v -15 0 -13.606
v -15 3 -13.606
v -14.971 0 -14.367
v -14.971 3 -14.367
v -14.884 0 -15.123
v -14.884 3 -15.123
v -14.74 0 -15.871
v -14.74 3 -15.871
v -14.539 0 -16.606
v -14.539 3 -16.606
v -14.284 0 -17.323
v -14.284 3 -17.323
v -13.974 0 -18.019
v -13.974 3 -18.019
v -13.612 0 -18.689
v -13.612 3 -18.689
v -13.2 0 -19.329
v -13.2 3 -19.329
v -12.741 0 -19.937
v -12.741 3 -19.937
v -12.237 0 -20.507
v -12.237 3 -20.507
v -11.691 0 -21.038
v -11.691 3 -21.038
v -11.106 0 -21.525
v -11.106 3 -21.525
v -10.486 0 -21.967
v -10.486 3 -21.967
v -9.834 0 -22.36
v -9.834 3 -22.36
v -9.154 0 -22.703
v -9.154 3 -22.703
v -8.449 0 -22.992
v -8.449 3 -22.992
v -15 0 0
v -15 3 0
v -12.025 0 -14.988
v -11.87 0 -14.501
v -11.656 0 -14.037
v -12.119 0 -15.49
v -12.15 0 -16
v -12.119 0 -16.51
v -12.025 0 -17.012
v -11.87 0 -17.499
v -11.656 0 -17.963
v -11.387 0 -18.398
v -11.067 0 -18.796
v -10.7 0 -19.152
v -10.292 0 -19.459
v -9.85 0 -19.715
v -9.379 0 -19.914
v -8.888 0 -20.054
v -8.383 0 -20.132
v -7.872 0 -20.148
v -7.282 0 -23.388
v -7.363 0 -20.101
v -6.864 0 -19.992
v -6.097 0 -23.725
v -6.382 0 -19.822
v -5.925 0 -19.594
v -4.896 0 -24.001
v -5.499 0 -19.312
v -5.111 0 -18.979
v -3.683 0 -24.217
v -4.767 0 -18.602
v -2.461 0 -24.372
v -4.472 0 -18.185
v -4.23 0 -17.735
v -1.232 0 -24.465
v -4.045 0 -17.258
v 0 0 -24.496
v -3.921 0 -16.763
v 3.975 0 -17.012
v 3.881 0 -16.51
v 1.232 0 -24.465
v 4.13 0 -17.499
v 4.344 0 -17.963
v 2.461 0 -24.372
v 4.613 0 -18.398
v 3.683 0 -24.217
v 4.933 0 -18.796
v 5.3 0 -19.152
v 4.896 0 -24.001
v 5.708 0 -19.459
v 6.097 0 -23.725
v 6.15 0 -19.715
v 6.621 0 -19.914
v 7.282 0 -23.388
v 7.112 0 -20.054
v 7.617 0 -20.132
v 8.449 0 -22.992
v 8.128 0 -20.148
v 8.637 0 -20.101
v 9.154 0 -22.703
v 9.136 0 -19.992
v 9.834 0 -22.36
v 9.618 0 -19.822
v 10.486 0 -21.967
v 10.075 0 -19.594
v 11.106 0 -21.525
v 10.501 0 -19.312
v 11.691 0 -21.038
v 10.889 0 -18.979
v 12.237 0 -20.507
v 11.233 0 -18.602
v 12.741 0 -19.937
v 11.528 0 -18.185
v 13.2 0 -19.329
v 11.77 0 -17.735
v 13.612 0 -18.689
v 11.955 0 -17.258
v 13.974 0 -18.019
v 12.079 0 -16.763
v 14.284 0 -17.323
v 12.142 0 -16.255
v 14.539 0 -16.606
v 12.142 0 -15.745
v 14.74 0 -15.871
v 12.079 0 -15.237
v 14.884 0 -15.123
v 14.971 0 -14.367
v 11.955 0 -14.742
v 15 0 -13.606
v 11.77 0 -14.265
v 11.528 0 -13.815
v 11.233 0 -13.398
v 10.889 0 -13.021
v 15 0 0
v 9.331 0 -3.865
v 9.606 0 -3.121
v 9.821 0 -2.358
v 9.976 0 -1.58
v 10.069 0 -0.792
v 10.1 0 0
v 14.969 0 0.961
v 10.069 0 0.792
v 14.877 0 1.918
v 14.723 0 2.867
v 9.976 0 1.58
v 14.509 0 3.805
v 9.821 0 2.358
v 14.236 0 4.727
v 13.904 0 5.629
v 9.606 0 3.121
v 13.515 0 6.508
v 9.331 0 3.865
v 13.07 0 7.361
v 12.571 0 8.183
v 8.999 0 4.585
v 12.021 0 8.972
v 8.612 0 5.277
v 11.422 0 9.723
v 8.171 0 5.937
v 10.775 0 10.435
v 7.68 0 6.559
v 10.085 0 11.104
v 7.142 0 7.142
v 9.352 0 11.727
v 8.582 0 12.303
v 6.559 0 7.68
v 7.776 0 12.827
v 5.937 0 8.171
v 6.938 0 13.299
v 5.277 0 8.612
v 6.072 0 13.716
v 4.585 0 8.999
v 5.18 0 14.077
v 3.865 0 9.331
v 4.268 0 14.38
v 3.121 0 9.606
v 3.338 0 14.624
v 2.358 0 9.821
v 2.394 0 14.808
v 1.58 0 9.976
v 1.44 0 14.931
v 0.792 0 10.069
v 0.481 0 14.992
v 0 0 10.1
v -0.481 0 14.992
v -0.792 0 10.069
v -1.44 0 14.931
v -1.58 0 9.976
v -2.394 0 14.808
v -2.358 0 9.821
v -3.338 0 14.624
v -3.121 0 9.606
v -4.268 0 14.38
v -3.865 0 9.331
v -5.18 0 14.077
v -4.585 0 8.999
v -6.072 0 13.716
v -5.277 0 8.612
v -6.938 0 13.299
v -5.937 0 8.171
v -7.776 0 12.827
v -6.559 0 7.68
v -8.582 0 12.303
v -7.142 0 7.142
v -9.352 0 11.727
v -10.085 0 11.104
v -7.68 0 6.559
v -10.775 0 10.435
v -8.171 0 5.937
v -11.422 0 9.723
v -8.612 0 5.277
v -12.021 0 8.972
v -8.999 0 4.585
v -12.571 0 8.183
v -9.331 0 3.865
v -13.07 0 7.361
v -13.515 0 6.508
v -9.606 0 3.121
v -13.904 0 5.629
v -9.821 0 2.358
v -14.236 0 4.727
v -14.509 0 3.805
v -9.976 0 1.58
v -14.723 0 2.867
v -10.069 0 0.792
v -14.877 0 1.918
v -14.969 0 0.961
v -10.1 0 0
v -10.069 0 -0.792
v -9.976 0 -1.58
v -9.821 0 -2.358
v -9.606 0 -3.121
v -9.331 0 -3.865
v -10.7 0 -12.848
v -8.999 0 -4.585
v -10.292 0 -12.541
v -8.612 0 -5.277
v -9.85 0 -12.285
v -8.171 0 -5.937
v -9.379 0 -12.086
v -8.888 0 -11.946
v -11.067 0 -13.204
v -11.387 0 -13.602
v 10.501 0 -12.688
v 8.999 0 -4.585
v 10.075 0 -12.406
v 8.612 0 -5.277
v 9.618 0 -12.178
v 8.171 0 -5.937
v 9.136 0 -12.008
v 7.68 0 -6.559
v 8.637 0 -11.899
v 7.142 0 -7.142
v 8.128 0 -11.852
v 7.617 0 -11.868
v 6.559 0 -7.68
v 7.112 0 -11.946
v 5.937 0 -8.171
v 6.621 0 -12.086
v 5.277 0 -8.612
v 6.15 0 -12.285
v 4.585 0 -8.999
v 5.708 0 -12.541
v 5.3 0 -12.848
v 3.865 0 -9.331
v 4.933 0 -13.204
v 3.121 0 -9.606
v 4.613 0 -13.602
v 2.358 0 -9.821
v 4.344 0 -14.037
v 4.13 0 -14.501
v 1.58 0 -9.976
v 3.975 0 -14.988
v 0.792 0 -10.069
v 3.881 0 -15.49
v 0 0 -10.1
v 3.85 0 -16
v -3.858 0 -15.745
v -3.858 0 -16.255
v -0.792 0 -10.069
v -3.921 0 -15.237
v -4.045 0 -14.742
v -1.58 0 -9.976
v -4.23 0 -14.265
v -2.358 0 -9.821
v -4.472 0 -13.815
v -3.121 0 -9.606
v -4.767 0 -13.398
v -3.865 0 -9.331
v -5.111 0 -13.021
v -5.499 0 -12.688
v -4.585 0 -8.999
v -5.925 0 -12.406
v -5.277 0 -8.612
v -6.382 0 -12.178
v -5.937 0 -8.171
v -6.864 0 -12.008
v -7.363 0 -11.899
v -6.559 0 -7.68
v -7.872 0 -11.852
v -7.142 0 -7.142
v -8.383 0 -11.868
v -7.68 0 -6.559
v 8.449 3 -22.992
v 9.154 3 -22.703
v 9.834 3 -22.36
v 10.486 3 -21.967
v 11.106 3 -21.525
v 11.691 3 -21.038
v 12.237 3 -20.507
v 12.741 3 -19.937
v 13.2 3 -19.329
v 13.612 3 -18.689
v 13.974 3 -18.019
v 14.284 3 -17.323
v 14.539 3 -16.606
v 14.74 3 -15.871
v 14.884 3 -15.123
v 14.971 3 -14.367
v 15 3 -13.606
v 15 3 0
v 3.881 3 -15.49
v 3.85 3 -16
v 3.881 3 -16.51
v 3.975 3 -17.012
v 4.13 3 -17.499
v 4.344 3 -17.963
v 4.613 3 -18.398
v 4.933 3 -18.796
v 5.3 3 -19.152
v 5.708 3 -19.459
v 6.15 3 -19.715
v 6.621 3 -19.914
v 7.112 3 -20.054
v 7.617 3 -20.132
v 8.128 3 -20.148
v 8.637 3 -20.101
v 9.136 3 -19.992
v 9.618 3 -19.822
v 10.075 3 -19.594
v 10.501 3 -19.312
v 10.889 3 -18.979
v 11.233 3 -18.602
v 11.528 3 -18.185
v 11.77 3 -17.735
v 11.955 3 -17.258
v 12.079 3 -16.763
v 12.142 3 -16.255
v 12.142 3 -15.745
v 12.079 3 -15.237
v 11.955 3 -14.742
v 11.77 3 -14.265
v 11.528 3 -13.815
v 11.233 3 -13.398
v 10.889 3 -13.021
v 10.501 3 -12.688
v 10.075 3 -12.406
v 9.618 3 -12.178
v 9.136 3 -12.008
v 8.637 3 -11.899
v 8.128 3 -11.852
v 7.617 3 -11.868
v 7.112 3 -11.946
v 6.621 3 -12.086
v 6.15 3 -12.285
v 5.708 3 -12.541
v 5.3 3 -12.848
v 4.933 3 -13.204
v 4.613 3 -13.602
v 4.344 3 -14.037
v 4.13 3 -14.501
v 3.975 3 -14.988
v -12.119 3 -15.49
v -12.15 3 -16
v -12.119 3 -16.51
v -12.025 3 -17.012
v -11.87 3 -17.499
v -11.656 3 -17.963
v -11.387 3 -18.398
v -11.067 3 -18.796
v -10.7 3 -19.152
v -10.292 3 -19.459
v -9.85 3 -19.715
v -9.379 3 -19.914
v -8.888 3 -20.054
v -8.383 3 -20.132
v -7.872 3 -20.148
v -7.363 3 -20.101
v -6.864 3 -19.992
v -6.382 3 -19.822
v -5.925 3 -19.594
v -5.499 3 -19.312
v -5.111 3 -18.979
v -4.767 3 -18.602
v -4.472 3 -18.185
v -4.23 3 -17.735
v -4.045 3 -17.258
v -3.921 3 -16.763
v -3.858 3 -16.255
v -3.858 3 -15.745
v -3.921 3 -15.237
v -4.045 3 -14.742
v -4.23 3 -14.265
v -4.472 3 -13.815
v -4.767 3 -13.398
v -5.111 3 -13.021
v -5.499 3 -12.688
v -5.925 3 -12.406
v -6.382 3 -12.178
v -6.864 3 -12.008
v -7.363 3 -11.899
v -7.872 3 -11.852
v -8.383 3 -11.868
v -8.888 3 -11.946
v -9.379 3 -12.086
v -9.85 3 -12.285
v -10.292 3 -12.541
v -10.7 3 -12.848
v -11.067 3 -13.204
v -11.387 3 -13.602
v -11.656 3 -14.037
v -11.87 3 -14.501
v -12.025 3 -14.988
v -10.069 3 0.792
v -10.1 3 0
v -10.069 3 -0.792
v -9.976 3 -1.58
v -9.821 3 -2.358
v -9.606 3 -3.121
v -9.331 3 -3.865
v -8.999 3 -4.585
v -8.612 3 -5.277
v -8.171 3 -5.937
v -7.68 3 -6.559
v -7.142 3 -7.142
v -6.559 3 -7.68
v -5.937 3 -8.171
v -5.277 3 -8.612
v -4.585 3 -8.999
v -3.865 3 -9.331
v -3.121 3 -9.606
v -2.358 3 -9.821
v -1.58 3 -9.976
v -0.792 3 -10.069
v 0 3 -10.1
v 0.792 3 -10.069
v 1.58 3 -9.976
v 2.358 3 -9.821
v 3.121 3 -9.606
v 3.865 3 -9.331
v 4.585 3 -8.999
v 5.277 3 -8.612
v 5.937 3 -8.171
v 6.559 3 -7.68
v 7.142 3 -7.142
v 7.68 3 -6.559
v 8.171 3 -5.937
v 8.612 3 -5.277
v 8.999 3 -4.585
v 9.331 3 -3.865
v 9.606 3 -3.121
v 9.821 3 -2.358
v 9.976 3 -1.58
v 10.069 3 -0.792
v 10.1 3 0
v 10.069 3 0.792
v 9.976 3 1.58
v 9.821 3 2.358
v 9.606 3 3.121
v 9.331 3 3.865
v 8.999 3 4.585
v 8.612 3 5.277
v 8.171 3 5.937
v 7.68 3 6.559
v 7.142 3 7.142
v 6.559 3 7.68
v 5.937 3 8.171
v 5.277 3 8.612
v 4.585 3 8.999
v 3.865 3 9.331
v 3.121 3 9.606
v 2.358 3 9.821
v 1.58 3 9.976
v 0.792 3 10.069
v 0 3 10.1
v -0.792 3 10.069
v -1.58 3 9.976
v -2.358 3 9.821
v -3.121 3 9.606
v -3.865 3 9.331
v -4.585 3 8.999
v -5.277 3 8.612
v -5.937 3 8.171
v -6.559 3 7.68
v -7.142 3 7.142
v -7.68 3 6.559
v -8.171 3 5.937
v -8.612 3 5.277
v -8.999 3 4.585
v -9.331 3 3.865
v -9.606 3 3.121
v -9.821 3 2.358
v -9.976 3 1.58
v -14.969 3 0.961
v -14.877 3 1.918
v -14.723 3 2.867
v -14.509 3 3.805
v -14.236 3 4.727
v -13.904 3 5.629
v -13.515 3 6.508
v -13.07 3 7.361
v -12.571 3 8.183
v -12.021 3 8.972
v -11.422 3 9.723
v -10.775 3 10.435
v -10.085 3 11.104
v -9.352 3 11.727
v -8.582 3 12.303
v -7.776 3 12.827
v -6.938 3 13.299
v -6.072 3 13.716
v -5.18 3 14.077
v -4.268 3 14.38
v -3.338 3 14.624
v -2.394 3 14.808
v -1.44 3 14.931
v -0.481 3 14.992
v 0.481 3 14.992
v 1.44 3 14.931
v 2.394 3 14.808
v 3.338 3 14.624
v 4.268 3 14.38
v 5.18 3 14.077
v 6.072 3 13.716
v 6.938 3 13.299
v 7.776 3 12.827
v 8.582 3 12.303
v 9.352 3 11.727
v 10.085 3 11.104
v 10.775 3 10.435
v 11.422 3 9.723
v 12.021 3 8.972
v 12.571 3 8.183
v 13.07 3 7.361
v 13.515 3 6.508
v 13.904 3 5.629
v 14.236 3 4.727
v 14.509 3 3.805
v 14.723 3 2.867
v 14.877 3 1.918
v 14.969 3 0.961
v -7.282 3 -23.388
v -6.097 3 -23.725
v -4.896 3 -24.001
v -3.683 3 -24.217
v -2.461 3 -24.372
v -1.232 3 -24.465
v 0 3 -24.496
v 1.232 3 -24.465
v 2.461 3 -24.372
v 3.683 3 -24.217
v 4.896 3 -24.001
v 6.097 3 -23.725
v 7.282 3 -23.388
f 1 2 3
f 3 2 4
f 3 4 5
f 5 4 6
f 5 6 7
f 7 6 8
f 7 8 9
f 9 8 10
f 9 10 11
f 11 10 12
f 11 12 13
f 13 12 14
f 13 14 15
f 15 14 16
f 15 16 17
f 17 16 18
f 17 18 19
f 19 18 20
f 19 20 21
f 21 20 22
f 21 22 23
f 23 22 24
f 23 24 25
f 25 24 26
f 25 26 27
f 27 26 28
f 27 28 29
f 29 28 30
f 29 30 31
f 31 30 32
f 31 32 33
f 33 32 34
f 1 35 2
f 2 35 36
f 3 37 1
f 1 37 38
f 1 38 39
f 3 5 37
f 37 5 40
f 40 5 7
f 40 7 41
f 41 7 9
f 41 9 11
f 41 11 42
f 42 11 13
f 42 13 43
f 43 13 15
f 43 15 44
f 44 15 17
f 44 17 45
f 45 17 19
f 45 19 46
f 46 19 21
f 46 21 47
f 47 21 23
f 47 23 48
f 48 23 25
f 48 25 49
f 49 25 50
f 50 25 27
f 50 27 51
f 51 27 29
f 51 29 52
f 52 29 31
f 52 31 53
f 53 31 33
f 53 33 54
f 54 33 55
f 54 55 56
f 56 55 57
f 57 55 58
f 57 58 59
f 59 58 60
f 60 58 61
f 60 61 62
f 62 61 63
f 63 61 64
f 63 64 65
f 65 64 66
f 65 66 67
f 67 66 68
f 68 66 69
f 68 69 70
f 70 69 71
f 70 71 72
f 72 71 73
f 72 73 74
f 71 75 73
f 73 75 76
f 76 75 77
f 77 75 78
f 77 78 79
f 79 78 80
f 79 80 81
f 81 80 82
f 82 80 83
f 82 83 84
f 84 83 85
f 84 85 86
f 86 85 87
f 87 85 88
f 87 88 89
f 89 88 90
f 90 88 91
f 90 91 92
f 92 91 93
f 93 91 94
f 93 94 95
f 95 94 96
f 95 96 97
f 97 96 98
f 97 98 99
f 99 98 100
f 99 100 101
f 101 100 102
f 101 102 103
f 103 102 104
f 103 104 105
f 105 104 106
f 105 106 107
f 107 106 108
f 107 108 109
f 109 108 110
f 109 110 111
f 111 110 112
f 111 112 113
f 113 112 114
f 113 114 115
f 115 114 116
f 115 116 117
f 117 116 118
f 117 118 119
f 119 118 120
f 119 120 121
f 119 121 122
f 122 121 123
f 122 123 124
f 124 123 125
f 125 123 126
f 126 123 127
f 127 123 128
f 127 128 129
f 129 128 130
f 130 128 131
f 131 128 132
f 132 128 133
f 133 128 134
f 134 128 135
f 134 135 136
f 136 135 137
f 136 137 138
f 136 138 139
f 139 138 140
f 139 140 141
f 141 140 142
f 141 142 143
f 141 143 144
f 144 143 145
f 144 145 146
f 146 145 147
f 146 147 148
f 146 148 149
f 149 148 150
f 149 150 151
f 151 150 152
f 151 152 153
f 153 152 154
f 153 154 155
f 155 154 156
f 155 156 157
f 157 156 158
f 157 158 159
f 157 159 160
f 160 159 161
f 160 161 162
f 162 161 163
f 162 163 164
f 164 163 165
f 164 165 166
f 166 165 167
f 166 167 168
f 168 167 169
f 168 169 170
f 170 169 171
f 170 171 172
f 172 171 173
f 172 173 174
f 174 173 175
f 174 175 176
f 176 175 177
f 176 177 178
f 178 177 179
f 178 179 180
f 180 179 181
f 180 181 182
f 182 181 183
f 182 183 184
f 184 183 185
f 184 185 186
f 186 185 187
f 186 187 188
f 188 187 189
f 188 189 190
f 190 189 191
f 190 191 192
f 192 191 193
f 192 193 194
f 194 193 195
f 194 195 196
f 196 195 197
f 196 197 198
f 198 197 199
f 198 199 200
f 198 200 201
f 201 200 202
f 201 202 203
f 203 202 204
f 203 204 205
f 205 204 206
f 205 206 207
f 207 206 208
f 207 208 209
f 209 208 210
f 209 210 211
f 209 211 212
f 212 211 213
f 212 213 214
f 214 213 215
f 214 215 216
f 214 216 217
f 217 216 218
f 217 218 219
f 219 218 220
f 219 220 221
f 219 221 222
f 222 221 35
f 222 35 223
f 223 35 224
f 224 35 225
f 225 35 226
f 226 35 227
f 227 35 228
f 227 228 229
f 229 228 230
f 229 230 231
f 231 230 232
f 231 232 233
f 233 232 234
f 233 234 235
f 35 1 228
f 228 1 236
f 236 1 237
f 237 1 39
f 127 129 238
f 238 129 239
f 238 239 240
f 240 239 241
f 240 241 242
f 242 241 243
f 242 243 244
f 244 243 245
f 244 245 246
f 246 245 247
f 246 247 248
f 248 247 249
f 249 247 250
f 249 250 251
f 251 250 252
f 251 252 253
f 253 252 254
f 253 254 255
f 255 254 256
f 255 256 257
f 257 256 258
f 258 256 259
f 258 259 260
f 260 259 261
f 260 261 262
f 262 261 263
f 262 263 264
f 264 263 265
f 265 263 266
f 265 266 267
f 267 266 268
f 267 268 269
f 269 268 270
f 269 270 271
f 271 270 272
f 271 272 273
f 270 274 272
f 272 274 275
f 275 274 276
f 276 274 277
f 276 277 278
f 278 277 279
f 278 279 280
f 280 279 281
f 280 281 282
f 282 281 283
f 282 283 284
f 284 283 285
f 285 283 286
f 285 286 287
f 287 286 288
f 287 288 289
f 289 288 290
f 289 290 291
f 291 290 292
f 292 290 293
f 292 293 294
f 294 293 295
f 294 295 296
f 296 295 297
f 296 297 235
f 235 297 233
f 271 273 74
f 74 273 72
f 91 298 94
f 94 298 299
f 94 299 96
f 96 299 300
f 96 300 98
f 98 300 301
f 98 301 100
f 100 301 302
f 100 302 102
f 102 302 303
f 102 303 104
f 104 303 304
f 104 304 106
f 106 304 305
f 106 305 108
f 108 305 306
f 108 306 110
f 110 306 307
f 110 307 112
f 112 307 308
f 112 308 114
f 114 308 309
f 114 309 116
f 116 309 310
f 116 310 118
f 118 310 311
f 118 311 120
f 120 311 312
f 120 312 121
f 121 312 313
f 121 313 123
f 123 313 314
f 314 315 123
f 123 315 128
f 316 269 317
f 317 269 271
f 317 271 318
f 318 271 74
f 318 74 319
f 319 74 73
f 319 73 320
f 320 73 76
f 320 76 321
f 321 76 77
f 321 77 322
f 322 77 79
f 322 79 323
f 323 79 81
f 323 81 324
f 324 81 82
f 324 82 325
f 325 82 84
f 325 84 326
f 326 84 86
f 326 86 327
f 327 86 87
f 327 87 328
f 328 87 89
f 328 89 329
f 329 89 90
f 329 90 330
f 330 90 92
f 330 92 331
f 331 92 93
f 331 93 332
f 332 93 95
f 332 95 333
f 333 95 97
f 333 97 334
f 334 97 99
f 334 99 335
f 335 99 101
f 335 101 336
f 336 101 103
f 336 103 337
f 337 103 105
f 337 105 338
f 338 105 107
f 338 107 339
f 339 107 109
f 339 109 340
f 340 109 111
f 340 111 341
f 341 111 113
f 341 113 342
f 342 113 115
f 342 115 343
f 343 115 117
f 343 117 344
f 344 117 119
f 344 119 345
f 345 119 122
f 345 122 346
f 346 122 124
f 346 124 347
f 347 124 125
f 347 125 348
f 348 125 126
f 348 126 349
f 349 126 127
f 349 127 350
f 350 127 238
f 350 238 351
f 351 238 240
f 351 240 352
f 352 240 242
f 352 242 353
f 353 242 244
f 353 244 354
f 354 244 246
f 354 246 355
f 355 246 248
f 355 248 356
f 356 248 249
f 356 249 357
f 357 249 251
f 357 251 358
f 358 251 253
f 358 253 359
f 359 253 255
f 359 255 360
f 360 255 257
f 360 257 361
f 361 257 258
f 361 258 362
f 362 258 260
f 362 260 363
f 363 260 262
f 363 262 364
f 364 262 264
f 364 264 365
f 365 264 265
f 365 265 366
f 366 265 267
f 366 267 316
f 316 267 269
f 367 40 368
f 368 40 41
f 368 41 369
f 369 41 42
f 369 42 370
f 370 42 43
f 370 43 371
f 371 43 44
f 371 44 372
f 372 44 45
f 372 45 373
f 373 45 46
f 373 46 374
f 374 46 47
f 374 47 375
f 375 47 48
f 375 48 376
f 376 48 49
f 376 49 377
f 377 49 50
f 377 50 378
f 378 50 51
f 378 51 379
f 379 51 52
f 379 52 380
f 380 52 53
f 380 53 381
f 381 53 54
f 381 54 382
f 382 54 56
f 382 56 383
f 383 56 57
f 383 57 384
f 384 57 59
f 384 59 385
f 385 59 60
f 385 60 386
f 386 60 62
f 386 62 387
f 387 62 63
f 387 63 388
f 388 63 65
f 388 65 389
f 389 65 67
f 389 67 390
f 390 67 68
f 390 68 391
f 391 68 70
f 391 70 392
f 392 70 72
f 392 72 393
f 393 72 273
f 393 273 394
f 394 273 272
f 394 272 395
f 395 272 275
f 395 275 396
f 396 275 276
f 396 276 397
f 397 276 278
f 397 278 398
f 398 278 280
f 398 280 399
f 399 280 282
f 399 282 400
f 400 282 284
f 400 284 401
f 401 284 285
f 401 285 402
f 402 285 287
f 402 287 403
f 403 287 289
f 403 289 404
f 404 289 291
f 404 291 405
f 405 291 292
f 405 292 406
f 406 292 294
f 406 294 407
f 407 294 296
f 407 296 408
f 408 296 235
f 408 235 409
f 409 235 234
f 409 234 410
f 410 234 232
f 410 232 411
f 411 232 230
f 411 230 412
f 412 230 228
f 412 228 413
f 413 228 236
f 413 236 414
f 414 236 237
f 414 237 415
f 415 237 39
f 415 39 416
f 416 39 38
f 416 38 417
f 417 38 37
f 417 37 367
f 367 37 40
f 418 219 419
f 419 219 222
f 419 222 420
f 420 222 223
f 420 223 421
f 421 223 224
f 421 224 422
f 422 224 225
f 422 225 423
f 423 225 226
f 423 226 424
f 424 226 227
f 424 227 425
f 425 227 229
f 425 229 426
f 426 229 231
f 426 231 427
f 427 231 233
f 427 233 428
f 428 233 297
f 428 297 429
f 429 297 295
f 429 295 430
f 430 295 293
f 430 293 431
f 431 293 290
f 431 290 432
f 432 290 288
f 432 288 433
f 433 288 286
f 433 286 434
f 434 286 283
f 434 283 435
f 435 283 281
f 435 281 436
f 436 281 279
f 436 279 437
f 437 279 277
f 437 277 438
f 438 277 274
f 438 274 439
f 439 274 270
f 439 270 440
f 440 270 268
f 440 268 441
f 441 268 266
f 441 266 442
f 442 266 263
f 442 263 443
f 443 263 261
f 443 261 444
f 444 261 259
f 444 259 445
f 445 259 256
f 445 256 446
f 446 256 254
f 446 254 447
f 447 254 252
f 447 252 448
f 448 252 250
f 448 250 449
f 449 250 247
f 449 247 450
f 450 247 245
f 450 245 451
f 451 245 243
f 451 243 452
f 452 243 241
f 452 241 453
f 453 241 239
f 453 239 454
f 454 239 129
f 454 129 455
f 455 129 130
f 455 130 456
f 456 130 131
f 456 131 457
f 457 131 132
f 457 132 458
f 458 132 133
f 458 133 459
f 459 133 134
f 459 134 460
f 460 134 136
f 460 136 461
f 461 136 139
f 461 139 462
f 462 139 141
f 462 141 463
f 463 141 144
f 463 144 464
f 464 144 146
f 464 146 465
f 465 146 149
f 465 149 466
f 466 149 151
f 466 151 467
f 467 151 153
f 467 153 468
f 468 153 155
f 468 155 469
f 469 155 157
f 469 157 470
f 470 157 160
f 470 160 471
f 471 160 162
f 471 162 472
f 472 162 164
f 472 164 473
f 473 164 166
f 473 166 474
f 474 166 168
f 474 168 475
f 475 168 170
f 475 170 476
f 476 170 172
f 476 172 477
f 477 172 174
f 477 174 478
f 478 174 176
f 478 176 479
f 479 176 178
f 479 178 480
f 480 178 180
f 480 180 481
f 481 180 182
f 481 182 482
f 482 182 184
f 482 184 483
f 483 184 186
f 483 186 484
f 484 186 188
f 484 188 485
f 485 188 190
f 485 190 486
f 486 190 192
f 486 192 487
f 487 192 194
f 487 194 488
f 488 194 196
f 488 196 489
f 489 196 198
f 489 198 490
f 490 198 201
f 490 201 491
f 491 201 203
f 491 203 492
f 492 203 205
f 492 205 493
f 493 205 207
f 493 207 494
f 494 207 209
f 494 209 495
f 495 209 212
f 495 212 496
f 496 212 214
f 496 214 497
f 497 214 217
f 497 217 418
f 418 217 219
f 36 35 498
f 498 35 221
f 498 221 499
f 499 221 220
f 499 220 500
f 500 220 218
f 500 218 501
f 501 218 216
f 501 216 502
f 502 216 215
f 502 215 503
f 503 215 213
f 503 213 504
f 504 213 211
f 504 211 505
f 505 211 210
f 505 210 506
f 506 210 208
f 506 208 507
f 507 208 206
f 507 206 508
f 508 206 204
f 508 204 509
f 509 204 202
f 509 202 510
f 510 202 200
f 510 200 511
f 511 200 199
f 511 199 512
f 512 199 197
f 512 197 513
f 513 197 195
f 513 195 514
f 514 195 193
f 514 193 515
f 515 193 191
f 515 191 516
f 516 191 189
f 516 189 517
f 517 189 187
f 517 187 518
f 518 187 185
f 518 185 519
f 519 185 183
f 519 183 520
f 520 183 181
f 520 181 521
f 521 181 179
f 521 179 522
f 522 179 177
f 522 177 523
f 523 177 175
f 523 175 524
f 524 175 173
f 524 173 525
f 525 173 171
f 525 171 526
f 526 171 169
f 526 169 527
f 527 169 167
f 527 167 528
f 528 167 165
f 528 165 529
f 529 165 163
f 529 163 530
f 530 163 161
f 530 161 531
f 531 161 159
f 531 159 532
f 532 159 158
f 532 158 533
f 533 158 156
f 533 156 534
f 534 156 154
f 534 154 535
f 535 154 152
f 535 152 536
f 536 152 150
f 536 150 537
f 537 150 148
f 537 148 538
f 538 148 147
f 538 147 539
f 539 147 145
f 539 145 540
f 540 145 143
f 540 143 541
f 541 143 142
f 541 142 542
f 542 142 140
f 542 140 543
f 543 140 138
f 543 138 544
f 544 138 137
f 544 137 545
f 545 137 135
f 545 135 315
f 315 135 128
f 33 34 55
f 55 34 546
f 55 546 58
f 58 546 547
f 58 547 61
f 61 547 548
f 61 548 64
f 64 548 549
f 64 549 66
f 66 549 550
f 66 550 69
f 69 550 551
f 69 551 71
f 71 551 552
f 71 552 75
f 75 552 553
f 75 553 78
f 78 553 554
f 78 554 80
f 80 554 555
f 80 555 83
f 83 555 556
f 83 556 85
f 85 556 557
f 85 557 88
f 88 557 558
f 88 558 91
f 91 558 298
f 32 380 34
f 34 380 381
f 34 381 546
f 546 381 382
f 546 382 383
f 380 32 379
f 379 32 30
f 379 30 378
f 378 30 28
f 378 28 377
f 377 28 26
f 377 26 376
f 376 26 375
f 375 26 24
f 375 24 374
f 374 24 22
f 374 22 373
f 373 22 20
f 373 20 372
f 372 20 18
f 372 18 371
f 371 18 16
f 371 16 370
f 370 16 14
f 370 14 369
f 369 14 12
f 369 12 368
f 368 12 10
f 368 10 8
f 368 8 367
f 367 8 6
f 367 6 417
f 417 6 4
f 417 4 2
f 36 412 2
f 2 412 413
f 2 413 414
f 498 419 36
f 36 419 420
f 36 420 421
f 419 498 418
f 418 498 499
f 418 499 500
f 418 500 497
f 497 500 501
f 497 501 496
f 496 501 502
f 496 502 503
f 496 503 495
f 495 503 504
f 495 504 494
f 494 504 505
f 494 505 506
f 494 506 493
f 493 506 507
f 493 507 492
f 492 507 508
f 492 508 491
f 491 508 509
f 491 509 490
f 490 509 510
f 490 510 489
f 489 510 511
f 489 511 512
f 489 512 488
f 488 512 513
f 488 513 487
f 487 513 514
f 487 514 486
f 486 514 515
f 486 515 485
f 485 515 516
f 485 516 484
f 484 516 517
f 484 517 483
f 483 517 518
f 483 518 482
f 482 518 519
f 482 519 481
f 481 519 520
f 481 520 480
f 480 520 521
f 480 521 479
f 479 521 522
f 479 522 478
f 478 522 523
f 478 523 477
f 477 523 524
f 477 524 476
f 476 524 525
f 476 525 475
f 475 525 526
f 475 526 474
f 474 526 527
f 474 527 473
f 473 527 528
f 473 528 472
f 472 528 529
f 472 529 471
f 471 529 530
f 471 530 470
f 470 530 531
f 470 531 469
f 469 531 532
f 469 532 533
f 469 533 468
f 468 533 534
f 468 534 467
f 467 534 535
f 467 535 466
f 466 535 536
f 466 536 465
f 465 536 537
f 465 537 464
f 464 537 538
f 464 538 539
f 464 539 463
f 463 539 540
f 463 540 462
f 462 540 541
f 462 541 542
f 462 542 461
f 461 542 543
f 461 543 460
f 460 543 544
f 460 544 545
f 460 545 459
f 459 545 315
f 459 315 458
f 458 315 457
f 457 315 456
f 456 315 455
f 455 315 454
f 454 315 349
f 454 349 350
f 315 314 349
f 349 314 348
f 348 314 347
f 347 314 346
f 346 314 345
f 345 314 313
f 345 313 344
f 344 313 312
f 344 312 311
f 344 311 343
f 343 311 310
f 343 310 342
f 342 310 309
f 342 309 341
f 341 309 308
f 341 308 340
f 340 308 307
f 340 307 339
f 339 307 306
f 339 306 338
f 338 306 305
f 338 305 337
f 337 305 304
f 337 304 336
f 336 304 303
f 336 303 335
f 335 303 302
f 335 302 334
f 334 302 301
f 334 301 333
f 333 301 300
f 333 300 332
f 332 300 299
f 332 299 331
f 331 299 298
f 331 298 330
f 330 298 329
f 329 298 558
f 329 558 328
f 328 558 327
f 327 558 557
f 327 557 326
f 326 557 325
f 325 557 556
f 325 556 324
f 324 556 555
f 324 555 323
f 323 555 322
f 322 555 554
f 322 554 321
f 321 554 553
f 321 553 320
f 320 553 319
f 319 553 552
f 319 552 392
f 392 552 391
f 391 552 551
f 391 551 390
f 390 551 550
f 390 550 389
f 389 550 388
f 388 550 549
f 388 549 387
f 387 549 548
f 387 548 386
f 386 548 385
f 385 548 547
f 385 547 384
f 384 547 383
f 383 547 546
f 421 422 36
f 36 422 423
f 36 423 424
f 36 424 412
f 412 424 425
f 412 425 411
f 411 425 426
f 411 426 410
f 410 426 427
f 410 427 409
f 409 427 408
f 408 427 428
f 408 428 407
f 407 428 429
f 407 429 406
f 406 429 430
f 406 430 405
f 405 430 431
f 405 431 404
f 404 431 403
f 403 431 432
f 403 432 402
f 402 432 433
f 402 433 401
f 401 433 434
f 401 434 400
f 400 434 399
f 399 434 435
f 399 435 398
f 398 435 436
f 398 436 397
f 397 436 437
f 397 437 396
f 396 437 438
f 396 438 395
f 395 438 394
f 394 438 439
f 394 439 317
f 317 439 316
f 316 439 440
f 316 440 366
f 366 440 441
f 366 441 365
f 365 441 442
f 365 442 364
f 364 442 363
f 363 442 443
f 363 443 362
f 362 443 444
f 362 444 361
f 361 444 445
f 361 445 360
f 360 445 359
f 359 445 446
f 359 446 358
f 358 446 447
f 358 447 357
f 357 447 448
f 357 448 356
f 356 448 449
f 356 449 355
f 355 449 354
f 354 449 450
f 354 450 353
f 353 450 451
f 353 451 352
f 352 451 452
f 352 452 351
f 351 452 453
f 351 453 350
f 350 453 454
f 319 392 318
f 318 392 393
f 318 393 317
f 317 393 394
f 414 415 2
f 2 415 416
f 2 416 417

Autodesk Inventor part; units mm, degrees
ref_plane "YZ Plane" through (0, 0, 0) normal (1, 0, 0) x (0, 1, 0)
ref_plane "XZ Plane" through (0, 0, 0) normal (0, 1, 0) x (-1, 0, 0)
ref_plane "XY Plane" through (0, 0, 0) normal (0, 0, 1) x (1, 0, 0)
sketch "Sketch1" plane through (0, 0, 0) normal (0, 1, 0) x (-1, 0, 0)
  circle A0 centre (0, 0) radius 10.1
  circle A1 centre (8, -16) radius 4.15
  circle A2 centre (-8, -16) radius 4.15
  circle A3 centre (0, 0) radius 24.4957
  line L0 (15, 0) -> (15, -19.3659)
  line L1 (-15, 0) -> (-15, -19.3659)
  arc A4 (15, 0) -> (-15, 0) centre (0, 0) ccw
  arc A5 (-9.0276, -11.9792) -> (-4.1668, -14.4096) centre (0, 0) ccw
  dimension "d0" = 20.2
  dimension "d1" = 8.3
  dimension "d2" = 8.3
  dimension "d3" = 16
  dimension "d4" = 16
  dimension "d5" = 16
  dimension "d6" = 8
extrude "Extrusion1" add sketch "Sketch1" along normal blind 3 contours L1 A4 L0 A3 picked at (13.8916, -11.1458)
fillet "Fillet1" radius 10 2 edges at (15, 1.5, -19.3659) (-15, 1.5, -19.3659)
equation "\"d2\" = d1"
properties part number "Sujeción mangueras_3DPrint"
